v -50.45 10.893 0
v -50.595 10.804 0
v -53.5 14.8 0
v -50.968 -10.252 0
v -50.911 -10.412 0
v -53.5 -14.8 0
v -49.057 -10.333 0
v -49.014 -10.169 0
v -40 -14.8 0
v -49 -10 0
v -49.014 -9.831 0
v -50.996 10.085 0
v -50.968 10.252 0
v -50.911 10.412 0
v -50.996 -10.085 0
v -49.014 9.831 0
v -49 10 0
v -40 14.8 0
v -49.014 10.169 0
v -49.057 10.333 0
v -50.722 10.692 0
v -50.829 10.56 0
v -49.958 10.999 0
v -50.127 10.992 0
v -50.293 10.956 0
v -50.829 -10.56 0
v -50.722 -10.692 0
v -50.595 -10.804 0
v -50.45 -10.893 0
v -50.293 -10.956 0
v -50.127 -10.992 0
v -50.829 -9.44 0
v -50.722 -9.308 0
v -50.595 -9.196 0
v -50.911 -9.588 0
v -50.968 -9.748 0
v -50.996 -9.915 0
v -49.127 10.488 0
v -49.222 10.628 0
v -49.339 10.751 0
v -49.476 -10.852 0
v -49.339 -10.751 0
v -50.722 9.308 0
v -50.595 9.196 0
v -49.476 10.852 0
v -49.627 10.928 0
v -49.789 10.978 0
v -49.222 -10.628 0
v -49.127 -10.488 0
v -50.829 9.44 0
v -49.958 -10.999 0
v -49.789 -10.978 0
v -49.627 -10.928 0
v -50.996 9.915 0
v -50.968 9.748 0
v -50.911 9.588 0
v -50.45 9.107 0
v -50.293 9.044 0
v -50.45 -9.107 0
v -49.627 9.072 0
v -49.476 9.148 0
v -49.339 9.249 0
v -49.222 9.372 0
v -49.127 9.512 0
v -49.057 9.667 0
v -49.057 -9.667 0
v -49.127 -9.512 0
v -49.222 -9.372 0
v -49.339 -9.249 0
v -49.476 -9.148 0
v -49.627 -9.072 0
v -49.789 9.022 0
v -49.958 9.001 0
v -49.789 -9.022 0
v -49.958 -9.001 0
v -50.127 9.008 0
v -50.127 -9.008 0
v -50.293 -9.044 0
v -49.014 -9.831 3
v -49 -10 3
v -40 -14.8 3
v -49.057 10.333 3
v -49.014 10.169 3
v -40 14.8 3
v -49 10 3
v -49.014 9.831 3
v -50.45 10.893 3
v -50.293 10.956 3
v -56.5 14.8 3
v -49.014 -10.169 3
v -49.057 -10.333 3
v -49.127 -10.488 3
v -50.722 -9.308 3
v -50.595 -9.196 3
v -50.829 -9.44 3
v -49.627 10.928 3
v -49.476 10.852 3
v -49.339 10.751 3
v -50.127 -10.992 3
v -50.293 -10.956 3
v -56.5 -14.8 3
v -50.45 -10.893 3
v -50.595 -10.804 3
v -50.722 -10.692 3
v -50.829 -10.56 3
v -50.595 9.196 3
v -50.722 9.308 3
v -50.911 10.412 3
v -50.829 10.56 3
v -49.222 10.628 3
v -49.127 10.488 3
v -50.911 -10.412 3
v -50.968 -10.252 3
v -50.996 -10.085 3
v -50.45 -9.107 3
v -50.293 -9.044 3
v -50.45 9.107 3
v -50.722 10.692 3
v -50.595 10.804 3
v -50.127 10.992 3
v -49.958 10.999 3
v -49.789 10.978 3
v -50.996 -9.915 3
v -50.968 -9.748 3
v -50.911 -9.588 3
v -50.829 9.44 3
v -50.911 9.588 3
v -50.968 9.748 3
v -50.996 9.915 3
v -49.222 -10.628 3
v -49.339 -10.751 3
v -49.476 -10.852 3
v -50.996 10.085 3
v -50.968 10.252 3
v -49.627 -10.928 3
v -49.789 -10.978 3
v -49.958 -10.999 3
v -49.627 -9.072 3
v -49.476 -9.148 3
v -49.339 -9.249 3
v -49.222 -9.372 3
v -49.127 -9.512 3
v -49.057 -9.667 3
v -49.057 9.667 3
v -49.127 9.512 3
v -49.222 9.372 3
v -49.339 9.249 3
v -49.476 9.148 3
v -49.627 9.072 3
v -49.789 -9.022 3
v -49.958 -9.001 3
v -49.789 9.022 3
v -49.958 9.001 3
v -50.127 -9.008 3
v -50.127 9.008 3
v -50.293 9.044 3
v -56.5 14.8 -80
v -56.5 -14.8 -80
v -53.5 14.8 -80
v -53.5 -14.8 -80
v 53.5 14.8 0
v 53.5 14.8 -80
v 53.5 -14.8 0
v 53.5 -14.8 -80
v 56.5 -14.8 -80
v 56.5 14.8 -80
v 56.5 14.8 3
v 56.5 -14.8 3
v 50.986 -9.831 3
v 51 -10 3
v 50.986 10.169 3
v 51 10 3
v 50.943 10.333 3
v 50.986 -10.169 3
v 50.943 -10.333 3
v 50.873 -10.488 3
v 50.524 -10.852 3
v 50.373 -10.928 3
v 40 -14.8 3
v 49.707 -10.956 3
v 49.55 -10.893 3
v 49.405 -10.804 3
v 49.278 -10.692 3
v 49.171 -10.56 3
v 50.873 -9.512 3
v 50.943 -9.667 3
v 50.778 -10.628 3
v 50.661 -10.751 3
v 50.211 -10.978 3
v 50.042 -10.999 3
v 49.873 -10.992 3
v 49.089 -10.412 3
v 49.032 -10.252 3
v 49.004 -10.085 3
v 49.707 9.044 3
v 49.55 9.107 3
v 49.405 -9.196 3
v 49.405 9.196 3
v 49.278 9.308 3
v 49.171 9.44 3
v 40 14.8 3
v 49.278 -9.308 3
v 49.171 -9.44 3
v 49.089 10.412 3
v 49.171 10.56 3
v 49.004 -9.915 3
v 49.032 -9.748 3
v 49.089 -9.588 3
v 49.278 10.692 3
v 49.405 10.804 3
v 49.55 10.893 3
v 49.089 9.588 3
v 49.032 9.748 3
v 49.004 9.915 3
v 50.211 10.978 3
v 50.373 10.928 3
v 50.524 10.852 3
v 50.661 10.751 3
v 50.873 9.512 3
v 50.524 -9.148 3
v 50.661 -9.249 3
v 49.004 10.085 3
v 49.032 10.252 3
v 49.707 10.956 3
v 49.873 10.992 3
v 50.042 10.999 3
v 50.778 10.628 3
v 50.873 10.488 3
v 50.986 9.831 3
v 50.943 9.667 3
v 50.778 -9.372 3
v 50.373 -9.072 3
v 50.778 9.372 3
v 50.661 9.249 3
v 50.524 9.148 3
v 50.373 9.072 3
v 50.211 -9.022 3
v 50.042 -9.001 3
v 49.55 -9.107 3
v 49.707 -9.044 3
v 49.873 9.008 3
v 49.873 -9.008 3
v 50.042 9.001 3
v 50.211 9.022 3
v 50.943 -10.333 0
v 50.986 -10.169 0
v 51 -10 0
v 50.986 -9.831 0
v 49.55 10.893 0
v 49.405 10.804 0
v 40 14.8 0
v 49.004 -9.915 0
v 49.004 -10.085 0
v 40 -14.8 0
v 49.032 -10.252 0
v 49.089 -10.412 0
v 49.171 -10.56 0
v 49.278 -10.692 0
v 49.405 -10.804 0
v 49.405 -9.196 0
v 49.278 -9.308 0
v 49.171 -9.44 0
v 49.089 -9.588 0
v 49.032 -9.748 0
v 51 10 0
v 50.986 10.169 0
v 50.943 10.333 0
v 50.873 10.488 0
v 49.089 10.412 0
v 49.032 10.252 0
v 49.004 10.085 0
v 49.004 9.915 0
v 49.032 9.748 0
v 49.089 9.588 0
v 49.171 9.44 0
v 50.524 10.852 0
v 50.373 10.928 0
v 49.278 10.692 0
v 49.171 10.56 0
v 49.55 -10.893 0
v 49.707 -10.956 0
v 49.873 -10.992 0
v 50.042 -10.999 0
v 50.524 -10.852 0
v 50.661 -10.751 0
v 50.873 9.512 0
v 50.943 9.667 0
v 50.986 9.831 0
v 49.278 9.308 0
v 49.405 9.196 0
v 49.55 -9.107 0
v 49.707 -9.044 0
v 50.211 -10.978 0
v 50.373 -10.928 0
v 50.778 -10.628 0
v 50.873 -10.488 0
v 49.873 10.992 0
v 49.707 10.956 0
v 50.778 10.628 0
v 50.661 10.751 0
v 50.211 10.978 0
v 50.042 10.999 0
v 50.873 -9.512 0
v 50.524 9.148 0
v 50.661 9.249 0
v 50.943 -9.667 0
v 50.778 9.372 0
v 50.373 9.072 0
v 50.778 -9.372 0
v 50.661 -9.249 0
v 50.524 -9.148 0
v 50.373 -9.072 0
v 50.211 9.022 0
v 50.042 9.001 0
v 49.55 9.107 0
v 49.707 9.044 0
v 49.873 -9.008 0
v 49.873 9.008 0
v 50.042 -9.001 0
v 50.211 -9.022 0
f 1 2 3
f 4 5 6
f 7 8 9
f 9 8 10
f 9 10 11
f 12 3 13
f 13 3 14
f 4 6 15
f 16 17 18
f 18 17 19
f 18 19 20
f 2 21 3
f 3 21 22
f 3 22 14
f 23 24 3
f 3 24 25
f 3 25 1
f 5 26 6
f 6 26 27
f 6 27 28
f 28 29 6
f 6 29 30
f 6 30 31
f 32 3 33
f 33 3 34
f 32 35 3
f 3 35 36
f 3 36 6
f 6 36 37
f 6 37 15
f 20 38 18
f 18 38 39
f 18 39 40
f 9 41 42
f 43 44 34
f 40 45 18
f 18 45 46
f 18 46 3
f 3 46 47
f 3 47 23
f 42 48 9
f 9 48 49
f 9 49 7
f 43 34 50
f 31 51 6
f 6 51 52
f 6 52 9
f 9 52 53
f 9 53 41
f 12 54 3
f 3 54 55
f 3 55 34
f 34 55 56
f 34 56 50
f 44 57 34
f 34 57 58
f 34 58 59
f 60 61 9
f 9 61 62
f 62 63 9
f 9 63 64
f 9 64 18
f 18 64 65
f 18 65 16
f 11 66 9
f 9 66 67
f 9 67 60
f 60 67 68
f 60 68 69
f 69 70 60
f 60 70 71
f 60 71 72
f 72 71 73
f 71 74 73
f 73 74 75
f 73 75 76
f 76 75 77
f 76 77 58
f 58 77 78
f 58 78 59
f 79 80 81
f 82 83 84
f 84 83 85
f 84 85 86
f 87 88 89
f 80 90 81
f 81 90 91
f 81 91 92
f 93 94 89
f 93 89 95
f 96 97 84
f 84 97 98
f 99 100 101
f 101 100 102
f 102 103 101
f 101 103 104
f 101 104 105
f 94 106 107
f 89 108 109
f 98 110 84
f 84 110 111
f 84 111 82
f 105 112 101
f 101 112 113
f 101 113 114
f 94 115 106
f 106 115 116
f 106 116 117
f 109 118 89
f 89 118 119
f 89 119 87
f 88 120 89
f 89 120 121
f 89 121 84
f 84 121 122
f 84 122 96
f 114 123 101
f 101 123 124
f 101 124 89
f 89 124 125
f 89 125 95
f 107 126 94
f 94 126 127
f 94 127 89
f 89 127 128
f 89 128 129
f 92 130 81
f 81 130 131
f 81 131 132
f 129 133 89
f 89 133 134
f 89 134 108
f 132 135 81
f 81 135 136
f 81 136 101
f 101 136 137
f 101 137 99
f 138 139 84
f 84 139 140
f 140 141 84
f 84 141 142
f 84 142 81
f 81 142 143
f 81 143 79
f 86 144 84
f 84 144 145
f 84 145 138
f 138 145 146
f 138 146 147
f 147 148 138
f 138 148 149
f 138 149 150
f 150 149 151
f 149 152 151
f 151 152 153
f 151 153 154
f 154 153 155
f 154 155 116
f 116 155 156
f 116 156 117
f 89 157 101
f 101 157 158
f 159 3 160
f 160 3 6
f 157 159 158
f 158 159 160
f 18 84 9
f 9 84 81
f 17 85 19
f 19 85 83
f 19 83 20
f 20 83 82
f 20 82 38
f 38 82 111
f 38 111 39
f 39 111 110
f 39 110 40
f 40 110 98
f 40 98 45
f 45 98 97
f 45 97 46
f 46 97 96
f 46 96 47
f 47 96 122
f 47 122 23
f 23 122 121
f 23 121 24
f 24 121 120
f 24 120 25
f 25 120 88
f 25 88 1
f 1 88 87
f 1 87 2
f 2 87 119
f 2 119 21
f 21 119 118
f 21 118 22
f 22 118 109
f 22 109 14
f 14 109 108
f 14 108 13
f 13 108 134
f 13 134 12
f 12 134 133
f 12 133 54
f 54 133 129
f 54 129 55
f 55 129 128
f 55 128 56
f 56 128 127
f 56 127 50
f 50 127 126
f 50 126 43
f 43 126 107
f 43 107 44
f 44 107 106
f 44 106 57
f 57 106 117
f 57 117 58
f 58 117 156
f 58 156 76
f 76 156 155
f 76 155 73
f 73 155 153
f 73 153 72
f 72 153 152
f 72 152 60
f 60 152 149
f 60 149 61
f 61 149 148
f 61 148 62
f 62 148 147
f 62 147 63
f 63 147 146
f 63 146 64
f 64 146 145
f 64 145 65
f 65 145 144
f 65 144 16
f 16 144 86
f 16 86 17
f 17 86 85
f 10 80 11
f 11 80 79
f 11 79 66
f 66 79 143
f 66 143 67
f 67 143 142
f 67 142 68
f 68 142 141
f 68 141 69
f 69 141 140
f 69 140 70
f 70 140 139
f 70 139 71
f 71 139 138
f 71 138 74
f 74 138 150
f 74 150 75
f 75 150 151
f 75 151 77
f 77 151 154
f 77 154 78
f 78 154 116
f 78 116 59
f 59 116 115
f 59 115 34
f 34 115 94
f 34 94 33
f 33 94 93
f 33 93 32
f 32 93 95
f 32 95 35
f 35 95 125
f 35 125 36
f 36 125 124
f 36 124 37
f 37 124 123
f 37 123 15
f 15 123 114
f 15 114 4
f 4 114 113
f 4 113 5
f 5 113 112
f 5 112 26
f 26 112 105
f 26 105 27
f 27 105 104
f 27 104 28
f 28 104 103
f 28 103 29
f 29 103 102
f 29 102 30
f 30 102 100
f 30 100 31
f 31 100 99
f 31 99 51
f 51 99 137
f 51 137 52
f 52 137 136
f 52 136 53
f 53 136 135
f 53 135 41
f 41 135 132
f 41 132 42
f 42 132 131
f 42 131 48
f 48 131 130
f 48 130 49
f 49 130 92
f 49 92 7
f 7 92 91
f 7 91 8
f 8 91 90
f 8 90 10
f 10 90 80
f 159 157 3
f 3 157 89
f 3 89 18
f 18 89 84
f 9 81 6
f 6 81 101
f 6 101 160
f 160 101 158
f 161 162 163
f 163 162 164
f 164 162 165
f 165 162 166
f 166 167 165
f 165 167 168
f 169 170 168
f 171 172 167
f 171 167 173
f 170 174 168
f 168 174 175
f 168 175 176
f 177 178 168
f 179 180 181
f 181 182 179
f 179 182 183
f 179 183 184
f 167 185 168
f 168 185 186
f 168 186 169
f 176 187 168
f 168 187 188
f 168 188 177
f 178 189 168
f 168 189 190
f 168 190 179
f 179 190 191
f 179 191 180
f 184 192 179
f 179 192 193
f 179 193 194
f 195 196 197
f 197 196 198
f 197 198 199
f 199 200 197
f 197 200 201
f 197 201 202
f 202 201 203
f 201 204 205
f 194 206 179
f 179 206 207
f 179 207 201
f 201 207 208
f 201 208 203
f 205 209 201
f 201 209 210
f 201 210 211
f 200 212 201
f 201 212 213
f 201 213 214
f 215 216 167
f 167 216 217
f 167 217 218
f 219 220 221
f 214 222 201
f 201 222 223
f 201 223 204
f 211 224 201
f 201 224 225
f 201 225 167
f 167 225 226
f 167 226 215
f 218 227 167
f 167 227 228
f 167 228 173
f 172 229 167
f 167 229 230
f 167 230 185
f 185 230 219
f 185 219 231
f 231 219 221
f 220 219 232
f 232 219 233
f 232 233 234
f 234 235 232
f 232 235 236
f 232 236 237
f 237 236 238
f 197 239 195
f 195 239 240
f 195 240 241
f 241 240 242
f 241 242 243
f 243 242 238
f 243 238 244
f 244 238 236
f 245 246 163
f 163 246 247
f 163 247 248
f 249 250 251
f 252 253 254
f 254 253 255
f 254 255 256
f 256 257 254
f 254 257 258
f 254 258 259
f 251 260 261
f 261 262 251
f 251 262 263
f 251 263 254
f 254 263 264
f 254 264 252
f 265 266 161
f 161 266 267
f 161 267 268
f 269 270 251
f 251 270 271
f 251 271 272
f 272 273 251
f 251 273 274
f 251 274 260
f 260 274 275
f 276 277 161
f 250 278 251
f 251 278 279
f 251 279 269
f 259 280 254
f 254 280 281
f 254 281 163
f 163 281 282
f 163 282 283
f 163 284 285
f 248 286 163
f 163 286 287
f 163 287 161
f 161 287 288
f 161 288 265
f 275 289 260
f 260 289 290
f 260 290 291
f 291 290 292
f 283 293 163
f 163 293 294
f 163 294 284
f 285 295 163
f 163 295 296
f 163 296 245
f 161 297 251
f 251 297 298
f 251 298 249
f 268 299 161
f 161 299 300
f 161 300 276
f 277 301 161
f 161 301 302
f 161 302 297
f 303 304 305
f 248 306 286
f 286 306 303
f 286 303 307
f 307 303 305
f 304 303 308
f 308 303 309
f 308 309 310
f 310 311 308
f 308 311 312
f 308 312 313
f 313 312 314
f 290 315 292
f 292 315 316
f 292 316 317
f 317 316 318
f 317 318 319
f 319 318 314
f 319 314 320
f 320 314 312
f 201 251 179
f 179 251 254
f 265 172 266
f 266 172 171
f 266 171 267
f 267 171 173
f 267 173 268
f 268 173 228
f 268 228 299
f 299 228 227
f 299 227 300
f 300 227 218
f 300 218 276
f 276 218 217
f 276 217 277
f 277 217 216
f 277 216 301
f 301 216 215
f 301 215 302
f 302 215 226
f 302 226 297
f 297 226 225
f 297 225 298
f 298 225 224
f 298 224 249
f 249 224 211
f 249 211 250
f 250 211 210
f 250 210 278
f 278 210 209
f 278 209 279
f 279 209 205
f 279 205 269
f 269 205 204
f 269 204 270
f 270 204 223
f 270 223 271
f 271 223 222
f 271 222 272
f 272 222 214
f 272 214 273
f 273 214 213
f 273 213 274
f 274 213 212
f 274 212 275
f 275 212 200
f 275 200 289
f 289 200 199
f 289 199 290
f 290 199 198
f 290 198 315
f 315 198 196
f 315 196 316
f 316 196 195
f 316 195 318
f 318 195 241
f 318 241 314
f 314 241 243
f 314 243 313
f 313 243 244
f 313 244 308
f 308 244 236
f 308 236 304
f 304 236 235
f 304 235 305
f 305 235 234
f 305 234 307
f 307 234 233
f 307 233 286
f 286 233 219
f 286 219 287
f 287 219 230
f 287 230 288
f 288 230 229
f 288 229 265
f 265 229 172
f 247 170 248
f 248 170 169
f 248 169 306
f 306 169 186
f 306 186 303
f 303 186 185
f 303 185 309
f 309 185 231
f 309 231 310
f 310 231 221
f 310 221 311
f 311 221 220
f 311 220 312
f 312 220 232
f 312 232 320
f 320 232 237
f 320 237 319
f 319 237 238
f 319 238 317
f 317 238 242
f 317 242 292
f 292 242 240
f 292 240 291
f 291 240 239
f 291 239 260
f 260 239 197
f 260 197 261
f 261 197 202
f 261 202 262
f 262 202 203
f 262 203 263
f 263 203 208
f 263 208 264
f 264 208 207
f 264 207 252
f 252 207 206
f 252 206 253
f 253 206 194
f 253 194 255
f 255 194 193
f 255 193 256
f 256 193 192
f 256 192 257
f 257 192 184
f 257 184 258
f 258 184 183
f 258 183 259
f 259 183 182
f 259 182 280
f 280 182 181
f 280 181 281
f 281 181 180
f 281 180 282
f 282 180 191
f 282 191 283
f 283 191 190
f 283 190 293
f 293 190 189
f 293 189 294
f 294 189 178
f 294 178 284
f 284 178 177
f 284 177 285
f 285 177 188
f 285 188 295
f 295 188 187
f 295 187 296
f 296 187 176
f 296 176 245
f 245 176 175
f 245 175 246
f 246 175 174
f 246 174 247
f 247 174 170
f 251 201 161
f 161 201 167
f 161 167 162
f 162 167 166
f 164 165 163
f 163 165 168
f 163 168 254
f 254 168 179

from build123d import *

# Parameters (mm, degrees)
SKETCH1_W           = 113
SKETCH1_H           = 30
BOSS_EXTRUDE1_DEPTH = 3
SKETCH2_W           = 3
SKETCH2_H           = 30
BOSS_EXTRUDE2_DEPTH = 80
SKETCH4_R           = 1
CUT_EXTRUDE1_DEPTH  = 10.5
SKETCH5_W           = 80
SKETCH5_H           = 30
CUT_EXTRUDE2_DEPTH  = 102.519702521
SKETCH6_W           = 125.18671139
SKETCH6_H           = 167.471966336
CUT_EXTRUDE3_DEPTH  = 0.2
SKETCH7_W           = 137.201217616
SKETCH7_H           = 176.824652728
CUT_EXTRUDE4_DEPTH  = 0.2


with BuildPart() as part:
    # Sketch1 → Boss-Extrude1 (new body)
    with BuildSketch(Plane.XY):
        Rectangle(SKETCH1_W, SKETCH1_H)
    extrude(amount=BOSS_EXTRUDE1_DEPTH)

    # Sketch2 → Boss-Extrude2 (add)
    with BuildSketch(Plane(origin=(0, 0, 0), x_dir=(-1, 0, 0), z_dir=(0, 0, -1))):
        with Locations((-55, 0)):
            Rectangle(SKETCH2_W, SKETCH2_H)
        with Locations((55, 0)):
            Rectangle(SKETCH2_W, SKETCH2_H)
    extrude(amount=BOSS_EXTRUDE2_DEPTH)

    # Sketch4 → Cut-Extrude1 (cut)
    with BuildSketch(Plane.XY.offset(3)):
        with Locations((-50, 10)):
            Circle(SKETCH4_R)
        with Locations((50, 10)):
            Circle(SKETCH4_R)
        with Locations((50, -10)):
            Circle(SKETCH4_R)
        with Locations((-50, -10)):
            Circle(SKETCH4_R)
    extrude(amount=-CUT_EXTRUDE1_DEPTH, mode=Mode.SUBTRACT)

    # Sketch5 → Cut-Extrude2 (cut, through all)
    with BuildSketch(Plane.XY.offset(3)):
        Rectangle(SKETCH5_W, SKETCH5_H)
    extrude(amount=-CUT_EXTRUDE2_DEPTH, mode=Mode.SUBTRACT)


with BuildPart() as cut_extrude2_piece_1:
    # of the separate pieces the step leaves, piece 1, a body of its own (cut_extrude2_pieces)
    add(part.part.solids().sort_by_distance((56.5, -15, -80))[0])


with BuildPart() as cut_extrude2_piece_2:
    # of the separate pieces the step leaves, piece 2, a body of its own (cut_extrude2_pieces)
    add(part.part.solids().sort_by_distance((-40, -15, 3))[0])


with BuildPart() as cut_extrude3_tool:
    # Sketch6 → Cut-Extrude3 (new body)
    with BuildSketch(Plane(origin=(0, 15, 0), x_dir=(1, 0, 0), z_dir=(0, 1, 0))):
        Rectangle(SKETCH6_W, SKETCH6_H)
    extrude(amount=-CUT_EXTRUDE3_DEPTH)


with BuildPart() as cut_extrude2_piece_1_1:
    add(cut_extrude2_piece_1.part)

    # Cut-Extrude3: cut by cut_extrude3_tool
    add(cut_extrude3_tool.part, mode=Mode.SUBTRACT)


with BuildPart() as cut_extrude2_piece_2_1:
    add(cut_extrude2_piece_2.part)

    # Cut-Extrude3: cut by cut_extrude3_tool
    add(cut_extrude3_tool.part, mode=Mode.SUBTRACT)


with BuildPart() as cut_extrude4_tool:
    # Sketch7 → Cut-Extrude4 (new body)
    with BuildSketch(Plane.XZ.offset(15)):
        Rectangle(SKETCH7_W, SKETCH7_H)
    extrude(amount=-CUT_EXTRUDE4_DEPTH)


with BuildPart() as cut_extrude2_piece_1_2:
    add(cut_extrude2_piece_1_1.part)

    # Cut-Extrude4: cut by cut_extrude4_tool
    add(cut_extrude4_tool.part, mode=Mode.SUBTRACT)


with BuildPart() as cut_extrude2_piece_2_2:
    add(cut_extrude2_piece_2_1.part)

    # Cut-Extrude4: cut by cut_extrude4_tool
    add(cut_extrude4_tool.part, mode=Mode.SUBTRACT)


solid = Compound([cut_extrude2_piece_1_2.part, cut_extrude2_piece_2_2.part])
